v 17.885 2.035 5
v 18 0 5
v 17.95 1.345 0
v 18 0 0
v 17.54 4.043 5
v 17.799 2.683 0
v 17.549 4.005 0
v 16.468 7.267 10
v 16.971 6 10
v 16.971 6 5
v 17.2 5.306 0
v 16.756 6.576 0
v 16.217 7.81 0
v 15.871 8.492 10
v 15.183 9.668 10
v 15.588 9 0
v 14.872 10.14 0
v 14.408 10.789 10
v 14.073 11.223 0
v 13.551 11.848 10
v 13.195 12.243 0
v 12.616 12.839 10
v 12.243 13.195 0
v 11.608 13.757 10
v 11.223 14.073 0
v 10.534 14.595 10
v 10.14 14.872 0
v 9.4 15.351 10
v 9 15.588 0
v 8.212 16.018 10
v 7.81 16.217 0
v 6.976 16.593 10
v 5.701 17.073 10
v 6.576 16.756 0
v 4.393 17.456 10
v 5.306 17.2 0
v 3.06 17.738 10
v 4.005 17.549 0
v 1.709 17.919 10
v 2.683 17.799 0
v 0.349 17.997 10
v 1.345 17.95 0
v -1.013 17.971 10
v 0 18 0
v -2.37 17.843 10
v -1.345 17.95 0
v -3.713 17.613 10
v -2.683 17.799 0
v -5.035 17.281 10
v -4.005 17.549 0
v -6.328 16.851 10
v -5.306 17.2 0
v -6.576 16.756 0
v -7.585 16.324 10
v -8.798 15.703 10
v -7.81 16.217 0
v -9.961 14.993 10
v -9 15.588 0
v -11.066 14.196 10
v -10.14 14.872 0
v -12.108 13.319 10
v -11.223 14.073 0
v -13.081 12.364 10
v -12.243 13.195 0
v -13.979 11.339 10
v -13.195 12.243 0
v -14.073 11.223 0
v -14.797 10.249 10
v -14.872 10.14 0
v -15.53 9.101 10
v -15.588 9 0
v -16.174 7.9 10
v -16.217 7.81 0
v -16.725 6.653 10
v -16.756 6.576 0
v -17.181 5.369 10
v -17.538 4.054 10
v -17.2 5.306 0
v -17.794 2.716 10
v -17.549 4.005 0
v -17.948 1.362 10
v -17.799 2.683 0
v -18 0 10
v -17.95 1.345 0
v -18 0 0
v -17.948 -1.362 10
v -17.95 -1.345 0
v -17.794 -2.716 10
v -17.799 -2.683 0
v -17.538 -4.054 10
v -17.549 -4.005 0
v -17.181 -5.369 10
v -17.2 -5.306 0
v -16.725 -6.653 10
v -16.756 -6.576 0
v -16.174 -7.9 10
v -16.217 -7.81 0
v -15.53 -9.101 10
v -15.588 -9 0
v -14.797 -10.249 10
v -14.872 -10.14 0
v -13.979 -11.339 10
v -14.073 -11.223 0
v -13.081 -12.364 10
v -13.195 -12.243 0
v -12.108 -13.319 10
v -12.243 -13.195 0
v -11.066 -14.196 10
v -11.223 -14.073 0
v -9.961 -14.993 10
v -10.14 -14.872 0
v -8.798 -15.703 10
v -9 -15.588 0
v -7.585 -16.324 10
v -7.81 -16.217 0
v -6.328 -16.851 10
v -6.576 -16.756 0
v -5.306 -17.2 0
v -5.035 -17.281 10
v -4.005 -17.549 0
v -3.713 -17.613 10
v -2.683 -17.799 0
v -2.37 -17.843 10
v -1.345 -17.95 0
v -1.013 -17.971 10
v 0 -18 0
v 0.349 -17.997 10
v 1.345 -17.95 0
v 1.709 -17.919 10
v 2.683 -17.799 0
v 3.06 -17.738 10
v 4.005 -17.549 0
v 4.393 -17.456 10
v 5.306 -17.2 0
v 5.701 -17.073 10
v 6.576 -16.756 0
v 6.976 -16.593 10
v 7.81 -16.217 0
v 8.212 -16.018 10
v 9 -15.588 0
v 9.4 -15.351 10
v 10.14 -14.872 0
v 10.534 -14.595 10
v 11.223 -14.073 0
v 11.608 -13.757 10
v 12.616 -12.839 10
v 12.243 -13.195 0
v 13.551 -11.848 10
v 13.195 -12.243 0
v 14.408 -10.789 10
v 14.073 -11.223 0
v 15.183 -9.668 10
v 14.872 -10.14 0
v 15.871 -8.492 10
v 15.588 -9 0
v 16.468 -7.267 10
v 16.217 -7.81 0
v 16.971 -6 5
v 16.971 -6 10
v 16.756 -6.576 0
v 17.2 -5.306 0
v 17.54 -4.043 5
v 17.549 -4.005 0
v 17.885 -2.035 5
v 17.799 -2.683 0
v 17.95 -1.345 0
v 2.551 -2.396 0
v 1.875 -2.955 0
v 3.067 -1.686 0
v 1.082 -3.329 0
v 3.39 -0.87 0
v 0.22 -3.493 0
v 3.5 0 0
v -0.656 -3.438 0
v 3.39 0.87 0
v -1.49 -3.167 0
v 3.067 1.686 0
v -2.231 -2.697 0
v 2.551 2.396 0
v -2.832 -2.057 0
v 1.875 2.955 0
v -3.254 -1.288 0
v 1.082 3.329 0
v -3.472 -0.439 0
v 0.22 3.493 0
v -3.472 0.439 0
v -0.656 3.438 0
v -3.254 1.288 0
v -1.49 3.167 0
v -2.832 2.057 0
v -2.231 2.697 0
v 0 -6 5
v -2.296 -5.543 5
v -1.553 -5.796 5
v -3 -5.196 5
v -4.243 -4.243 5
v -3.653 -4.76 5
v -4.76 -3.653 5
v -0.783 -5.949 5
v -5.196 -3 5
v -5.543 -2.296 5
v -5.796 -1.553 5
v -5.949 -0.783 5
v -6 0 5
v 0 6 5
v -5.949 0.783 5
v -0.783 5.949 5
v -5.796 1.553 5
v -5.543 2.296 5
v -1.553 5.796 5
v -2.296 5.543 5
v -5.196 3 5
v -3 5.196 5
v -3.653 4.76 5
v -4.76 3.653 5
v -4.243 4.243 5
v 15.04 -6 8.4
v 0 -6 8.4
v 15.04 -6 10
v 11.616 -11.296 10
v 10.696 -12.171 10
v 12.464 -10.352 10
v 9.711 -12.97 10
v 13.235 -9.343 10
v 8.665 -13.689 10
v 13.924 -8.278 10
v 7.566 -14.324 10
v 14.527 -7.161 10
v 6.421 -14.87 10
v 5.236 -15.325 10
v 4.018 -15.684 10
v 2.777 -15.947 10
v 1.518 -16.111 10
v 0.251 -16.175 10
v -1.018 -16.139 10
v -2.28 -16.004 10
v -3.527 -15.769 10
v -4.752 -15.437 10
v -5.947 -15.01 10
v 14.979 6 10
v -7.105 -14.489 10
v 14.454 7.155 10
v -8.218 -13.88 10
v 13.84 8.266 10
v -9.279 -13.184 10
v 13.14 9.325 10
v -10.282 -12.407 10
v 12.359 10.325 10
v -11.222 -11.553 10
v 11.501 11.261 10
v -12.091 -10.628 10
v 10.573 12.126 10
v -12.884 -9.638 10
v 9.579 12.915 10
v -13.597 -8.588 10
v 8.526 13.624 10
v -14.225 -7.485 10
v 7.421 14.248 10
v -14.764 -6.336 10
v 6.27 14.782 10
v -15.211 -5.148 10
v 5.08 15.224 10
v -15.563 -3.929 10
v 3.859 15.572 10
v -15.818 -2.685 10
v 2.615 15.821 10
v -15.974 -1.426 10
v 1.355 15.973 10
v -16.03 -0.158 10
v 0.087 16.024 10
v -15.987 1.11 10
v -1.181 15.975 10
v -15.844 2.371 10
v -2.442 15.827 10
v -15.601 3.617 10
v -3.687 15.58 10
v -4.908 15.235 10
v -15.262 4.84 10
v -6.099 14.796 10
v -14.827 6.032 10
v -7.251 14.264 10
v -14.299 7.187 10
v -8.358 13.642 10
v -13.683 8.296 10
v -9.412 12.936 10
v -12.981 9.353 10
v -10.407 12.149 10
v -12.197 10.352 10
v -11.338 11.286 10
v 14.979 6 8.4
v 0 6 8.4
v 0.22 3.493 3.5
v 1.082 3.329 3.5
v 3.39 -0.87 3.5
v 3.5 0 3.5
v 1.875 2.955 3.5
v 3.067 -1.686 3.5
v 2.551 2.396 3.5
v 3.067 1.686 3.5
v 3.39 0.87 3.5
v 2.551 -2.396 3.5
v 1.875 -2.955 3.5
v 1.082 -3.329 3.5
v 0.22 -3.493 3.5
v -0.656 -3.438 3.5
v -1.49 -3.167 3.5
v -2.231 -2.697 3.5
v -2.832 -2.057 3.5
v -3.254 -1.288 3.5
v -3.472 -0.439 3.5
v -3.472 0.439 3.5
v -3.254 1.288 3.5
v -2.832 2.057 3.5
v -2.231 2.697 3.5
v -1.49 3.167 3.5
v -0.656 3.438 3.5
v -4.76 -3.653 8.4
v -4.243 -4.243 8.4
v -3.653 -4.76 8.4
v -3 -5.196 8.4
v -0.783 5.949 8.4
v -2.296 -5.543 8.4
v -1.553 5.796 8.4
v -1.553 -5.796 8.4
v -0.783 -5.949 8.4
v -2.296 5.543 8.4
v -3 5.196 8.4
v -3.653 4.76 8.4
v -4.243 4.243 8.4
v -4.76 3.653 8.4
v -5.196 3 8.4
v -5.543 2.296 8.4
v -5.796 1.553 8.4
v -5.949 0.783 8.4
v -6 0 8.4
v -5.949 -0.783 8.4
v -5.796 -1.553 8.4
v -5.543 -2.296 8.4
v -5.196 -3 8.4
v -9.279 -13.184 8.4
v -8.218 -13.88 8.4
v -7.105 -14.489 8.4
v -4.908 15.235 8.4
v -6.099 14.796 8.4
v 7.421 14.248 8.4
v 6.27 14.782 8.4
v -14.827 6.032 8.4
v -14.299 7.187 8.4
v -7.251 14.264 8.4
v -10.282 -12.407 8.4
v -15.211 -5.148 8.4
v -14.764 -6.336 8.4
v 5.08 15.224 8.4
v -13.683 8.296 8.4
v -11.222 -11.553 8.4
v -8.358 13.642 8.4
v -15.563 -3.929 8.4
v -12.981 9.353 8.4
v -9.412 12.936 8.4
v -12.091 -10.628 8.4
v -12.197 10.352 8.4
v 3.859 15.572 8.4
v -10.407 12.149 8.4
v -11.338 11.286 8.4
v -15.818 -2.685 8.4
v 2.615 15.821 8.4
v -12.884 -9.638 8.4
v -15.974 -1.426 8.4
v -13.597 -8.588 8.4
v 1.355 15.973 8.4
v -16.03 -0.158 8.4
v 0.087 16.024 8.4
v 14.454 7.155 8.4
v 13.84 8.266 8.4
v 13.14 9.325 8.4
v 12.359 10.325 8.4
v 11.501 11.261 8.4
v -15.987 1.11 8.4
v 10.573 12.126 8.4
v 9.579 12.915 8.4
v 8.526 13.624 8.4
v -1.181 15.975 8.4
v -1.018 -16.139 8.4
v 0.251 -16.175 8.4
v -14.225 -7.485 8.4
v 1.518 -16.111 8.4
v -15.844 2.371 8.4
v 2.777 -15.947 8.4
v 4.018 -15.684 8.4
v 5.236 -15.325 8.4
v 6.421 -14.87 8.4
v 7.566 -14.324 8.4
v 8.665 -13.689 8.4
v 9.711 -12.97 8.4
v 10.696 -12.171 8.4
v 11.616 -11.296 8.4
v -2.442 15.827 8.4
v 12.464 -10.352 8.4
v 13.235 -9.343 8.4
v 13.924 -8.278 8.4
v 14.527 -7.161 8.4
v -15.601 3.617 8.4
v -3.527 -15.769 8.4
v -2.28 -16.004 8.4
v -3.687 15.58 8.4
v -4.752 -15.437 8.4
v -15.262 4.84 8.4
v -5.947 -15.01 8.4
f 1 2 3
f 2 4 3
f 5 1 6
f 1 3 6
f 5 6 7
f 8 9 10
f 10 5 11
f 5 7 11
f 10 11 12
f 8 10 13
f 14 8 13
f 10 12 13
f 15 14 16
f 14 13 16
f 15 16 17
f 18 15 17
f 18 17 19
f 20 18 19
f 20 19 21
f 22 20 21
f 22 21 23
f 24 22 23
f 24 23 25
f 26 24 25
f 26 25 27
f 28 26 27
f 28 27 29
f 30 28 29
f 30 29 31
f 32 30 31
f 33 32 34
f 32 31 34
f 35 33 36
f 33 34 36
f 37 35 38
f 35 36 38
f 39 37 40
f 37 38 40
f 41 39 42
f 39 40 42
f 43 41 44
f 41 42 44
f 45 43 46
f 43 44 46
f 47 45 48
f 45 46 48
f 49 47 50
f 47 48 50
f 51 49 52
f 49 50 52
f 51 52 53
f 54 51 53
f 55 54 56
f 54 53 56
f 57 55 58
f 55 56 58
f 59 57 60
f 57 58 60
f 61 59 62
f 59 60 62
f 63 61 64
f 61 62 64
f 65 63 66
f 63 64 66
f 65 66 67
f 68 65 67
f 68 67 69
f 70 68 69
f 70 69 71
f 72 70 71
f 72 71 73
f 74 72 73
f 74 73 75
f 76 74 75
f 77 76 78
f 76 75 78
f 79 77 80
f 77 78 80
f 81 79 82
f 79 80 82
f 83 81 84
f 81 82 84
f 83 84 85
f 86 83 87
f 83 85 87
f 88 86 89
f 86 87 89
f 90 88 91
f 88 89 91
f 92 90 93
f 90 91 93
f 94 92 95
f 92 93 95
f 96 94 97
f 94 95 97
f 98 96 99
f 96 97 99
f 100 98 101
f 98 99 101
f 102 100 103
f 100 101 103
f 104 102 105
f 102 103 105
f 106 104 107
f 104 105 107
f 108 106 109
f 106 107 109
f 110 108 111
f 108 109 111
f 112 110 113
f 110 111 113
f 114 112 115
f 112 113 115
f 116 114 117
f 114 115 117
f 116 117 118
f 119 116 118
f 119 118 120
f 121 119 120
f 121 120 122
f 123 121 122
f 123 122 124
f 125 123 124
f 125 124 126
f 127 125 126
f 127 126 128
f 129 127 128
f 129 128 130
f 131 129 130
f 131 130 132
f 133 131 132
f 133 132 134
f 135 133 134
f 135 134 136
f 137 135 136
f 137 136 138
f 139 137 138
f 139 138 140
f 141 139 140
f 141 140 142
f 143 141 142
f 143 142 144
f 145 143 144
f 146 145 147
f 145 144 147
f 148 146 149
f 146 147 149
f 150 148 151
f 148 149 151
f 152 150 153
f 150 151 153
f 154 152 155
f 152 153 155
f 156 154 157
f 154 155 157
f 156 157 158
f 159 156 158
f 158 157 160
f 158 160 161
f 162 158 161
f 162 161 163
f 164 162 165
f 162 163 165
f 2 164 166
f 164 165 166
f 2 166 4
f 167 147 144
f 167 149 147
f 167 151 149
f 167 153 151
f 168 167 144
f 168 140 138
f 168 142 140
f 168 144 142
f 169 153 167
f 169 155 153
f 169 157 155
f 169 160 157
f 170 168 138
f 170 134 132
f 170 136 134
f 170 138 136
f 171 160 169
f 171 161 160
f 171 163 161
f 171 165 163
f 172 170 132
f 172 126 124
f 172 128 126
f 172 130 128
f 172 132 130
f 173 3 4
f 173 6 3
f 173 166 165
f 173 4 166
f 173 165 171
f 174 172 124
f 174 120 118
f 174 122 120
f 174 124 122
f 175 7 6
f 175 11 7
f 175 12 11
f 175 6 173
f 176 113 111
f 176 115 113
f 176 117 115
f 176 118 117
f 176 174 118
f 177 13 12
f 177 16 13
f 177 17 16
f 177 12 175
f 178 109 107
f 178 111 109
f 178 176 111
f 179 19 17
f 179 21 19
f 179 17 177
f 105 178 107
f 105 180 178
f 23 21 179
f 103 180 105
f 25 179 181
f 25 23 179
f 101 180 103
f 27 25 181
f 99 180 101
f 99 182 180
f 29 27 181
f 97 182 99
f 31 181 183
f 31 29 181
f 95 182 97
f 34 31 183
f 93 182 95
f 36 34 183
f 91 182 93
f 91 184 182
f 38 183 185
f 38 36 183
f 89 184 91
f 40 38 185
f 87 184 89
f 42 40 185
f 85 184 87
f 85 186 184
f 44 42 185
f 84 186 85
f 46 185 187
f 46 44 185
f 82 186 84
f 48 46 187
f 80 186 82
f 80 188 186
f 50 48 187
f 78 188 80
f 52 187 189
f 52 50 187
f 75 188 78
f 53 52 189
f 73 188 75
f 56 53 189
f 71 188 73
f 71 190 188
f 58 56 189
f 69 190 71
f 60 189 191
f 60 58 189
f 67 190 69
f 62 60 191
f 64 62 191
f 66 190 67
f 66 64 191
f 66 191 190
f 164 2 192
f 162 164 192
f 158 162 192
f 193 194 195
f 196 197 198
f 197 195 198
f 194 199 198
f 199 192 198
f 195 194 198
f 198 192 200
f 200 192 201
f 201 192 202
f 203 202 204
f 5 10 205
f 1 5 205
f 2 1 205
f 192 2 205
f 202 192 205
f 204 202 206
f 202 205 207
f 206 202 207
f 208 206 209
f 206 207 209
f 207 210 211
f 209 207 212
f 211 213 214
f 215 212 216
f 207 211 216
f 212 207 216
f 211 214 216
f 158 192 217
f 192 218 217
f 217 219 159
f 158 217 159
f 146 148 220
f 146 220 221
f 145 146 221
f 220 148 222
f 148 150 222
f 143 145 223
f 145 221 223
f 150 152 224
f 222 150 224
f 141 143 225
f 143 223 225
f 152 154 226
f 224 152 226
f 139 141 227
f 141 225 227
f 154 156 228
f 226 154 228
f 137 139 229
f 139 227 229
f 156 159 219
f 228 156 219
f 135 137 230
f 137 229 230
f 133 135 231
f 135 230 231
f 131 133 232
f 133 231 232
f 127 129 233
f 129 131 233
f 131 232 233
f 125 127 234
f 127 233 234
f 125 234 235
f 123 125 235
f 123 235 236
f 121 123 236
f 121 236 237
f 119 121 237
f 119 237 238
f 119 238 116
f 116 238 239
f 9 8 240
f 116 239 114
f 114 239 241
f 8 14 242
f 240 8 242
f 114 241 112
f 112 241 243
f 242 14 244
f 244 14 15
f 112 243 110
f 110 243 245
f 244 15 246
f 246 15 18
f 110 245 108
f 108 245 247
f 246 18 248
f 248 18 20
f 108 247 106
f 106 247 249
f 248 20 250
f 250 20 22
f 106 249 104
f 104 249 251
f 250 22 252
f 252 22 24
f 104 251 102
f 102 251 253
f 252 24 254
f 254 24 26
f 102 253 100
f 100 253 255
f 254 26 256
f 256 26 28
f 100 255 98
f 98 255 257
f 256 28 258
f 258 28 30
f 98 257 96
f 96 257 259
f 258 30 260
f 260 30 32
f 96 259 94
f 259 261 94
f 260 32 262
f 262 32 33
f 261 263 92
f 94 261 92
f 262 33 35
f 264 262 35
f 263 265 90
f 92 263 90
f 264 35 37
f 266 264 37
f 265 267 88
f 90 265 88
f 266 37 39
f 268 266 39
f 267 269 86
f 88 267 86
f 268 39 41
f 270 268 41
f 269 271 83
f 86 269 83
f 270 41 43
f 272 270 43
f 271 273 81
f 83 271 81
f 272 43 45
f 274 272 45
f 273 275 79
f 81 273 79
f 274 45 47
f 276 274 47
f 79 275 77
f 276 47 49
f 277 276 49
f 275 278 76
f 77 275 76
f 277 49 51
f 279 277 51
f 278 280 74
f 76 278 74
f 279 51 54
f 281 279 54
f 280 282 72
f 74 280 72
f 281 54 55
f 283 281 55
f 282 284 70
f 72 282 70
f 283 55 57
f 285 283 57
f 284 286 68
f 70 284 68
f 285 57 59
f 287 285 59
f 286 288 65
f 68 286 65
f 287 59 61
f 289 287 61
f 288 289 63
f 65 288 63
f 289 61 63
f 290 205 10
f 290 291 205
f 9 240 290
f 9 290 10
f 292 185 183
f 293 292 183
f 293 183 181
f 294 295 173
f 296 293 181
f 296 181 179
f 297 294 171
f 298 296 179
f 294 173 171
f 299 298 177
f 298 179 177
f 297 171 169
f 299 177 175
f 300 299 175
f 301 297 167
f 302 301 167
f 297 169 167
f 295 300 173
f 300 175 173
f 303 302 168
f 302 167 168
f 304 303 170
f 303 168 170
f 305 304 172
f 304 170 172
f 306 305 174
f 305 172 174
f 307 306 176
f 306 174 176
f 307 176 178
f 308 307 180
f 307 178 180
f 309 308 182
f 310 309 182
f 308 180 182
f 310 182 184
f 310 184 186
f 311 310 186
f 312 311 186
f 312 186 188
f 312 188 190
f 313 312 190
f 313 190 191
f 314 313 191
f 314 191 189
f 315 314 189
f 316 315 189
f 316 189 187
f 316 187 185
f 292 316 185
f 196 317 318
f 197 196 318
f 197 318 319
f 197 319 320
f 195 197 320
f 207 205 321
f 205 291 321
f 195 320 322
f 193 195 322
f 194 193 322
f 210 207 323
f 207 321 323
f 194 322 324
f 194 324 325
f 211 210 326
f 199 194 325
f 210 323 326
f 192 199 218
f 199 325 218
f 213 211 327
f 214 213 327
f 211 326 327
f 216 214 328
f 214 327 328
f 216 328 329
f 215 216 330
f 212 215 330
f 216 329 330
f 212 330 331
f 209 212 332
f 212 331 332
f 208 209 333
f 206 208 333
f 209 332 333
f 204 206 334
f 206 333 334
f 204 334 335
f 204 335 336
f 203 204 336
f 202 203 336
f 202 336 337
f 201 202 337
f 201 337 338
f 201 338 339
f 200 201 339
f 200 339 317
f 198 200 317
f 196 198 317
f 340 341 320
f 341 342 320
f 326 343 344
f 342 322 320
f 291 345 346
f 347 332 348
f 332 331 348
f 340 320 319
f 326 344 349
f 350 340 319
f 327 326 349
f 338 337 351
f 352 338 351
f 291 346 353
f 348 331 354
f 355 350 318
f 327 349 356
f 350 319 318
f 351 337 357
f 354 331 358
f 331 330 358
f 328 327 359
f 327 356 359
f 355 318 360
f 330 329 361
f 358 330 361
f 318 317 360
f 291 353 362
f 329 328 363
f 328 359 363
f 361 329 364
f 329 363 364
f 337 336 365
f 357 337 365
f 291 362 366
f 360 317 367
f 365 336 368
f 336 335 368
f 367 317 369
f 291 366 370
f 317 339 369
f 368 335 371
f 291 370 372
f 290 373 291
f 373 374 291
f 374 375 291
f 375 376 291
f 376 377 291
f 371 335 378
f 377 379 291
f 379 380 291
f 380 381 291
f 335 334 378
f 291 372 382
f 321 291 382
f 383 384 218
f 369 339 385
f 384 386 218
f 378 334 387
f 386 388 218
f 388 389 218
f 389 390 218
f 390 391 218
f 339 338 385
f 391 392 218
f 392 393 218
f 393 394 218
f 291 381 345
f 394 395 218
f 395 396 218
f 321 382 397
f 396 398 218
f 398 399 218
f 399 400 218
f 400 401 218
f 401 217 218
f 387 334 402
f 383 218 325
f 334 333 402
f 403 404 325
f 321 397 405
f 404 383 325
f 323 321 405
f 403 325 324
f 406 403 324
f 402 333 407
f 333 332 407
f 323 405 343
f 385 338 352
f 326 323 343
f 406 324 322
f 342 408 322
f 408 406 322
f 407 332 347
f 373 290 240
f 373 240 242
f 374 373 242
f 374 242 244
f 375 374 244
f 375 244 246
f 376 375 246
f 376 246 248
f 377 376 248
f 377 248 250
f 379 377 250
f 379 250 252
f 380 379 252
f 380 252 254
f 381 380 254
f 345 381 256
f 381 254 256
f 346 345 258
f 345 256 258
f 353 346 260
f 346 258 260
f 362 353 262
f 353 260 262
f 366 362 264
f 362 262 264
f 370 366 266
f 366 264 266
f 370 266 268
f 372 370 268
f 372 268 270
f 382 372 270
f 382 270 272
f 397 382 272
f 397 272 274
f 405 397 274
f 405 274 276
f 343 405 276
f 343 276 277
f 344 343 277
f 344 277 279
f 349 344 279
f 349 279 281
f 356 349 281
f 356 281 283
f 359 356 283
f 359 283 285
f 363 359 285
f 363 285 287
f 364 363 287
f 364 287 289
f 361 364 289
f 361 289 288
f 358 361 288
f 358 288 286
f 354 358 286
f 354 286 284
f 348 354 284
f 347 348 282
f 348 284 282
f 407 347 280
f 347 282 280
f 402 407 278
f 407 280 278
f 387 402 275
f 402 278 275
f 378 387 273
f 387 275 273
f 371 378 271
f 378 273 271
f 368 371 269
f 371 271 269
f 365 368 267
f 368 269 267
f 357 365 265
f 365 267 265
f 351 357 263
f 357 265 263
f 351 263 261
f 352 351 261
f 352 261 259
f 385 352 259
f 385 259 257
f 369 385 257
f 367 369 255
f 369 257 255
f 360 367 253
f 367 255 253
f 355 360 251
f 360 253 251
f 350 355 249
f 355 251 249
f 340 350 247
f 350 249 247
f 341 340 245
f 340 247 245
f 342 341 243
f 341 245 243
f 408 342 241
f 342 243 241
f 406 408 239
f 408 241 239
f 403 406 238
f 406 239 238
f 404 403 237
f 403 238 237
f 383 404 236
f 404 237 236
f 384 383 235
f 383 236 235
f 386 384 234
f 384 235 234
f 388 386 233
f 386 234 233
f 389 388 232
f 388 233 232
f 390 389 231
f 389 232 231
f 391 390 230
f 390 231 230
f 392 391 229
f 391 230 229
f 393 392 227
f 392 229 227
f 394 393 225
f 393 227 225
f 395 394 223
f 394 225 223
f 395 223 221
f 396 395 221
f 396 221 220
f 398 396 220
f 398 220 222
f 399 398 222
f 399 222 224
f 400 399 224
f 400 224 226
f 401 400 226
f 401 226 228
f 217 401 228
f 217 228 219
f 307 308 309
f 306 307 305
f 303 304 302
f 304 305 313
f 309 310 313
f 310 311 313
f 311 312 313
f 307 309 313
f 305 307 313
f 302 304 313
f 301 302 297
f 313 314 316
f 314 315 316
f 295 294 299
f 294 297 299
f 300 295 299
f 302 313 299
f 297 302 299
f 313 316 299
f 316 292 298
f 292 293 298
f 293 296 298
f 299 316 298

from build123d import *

# Parameters (mm, degrees)
SKETCH_R        = 18
PAD_DEPTH       = 10
SKETCH001_R     = 16.1
POCKET_DEPTH    = 1.6
POCKET001_DEPTH = 5
SKETCH004_R     = 3.5
POCKET002_DEPTH = 3.5


with BuildPart() as part:
    # Sketch → Pad (new body)
    with BuildSketch(Plane.XY):
        Circle(SKETCH_R)
    extrude(amount=PAD_DEPTH)

    # Sketch001 → Pocket (cut)
    with BuildSketch(Plane.XY.offset(10)):
        with Locations((0.069364, -0.076041)):
            Circle(SKETCH001_R)
    extrude(amount=-POCKET_DEPTH, mode=Mode.SUBTRACT)

    # Sketch003 → Pocket001 (cut)
    with BuildSketch(Plane.XY.offset(10)):
        with BuildLine():
            ThreePointArc((0, 6), (-6, 0), (0, -6))
            Line((0, -6), (30, -6))
            ThreePointArc((30, -6), (36, 0), (30, 6))
            Line((0, 6), (30, 6))
        make_face()
    extrude(amount=-POCKET001_DEPTH, mode=Mode.SUBTRACT)

    # Sketch004 → Pocket002 (cut)
    with BuildSketch(Plane(origin=(0, 0, 0), x_dir=(1, 0, 0), z_dir=(0, 0, -1))):
        Circle(SKETCH004_R)
    extrude(amount=-POCKET002_DEPTH, mode=Mode.SUBTRACT)


solid = part.part
